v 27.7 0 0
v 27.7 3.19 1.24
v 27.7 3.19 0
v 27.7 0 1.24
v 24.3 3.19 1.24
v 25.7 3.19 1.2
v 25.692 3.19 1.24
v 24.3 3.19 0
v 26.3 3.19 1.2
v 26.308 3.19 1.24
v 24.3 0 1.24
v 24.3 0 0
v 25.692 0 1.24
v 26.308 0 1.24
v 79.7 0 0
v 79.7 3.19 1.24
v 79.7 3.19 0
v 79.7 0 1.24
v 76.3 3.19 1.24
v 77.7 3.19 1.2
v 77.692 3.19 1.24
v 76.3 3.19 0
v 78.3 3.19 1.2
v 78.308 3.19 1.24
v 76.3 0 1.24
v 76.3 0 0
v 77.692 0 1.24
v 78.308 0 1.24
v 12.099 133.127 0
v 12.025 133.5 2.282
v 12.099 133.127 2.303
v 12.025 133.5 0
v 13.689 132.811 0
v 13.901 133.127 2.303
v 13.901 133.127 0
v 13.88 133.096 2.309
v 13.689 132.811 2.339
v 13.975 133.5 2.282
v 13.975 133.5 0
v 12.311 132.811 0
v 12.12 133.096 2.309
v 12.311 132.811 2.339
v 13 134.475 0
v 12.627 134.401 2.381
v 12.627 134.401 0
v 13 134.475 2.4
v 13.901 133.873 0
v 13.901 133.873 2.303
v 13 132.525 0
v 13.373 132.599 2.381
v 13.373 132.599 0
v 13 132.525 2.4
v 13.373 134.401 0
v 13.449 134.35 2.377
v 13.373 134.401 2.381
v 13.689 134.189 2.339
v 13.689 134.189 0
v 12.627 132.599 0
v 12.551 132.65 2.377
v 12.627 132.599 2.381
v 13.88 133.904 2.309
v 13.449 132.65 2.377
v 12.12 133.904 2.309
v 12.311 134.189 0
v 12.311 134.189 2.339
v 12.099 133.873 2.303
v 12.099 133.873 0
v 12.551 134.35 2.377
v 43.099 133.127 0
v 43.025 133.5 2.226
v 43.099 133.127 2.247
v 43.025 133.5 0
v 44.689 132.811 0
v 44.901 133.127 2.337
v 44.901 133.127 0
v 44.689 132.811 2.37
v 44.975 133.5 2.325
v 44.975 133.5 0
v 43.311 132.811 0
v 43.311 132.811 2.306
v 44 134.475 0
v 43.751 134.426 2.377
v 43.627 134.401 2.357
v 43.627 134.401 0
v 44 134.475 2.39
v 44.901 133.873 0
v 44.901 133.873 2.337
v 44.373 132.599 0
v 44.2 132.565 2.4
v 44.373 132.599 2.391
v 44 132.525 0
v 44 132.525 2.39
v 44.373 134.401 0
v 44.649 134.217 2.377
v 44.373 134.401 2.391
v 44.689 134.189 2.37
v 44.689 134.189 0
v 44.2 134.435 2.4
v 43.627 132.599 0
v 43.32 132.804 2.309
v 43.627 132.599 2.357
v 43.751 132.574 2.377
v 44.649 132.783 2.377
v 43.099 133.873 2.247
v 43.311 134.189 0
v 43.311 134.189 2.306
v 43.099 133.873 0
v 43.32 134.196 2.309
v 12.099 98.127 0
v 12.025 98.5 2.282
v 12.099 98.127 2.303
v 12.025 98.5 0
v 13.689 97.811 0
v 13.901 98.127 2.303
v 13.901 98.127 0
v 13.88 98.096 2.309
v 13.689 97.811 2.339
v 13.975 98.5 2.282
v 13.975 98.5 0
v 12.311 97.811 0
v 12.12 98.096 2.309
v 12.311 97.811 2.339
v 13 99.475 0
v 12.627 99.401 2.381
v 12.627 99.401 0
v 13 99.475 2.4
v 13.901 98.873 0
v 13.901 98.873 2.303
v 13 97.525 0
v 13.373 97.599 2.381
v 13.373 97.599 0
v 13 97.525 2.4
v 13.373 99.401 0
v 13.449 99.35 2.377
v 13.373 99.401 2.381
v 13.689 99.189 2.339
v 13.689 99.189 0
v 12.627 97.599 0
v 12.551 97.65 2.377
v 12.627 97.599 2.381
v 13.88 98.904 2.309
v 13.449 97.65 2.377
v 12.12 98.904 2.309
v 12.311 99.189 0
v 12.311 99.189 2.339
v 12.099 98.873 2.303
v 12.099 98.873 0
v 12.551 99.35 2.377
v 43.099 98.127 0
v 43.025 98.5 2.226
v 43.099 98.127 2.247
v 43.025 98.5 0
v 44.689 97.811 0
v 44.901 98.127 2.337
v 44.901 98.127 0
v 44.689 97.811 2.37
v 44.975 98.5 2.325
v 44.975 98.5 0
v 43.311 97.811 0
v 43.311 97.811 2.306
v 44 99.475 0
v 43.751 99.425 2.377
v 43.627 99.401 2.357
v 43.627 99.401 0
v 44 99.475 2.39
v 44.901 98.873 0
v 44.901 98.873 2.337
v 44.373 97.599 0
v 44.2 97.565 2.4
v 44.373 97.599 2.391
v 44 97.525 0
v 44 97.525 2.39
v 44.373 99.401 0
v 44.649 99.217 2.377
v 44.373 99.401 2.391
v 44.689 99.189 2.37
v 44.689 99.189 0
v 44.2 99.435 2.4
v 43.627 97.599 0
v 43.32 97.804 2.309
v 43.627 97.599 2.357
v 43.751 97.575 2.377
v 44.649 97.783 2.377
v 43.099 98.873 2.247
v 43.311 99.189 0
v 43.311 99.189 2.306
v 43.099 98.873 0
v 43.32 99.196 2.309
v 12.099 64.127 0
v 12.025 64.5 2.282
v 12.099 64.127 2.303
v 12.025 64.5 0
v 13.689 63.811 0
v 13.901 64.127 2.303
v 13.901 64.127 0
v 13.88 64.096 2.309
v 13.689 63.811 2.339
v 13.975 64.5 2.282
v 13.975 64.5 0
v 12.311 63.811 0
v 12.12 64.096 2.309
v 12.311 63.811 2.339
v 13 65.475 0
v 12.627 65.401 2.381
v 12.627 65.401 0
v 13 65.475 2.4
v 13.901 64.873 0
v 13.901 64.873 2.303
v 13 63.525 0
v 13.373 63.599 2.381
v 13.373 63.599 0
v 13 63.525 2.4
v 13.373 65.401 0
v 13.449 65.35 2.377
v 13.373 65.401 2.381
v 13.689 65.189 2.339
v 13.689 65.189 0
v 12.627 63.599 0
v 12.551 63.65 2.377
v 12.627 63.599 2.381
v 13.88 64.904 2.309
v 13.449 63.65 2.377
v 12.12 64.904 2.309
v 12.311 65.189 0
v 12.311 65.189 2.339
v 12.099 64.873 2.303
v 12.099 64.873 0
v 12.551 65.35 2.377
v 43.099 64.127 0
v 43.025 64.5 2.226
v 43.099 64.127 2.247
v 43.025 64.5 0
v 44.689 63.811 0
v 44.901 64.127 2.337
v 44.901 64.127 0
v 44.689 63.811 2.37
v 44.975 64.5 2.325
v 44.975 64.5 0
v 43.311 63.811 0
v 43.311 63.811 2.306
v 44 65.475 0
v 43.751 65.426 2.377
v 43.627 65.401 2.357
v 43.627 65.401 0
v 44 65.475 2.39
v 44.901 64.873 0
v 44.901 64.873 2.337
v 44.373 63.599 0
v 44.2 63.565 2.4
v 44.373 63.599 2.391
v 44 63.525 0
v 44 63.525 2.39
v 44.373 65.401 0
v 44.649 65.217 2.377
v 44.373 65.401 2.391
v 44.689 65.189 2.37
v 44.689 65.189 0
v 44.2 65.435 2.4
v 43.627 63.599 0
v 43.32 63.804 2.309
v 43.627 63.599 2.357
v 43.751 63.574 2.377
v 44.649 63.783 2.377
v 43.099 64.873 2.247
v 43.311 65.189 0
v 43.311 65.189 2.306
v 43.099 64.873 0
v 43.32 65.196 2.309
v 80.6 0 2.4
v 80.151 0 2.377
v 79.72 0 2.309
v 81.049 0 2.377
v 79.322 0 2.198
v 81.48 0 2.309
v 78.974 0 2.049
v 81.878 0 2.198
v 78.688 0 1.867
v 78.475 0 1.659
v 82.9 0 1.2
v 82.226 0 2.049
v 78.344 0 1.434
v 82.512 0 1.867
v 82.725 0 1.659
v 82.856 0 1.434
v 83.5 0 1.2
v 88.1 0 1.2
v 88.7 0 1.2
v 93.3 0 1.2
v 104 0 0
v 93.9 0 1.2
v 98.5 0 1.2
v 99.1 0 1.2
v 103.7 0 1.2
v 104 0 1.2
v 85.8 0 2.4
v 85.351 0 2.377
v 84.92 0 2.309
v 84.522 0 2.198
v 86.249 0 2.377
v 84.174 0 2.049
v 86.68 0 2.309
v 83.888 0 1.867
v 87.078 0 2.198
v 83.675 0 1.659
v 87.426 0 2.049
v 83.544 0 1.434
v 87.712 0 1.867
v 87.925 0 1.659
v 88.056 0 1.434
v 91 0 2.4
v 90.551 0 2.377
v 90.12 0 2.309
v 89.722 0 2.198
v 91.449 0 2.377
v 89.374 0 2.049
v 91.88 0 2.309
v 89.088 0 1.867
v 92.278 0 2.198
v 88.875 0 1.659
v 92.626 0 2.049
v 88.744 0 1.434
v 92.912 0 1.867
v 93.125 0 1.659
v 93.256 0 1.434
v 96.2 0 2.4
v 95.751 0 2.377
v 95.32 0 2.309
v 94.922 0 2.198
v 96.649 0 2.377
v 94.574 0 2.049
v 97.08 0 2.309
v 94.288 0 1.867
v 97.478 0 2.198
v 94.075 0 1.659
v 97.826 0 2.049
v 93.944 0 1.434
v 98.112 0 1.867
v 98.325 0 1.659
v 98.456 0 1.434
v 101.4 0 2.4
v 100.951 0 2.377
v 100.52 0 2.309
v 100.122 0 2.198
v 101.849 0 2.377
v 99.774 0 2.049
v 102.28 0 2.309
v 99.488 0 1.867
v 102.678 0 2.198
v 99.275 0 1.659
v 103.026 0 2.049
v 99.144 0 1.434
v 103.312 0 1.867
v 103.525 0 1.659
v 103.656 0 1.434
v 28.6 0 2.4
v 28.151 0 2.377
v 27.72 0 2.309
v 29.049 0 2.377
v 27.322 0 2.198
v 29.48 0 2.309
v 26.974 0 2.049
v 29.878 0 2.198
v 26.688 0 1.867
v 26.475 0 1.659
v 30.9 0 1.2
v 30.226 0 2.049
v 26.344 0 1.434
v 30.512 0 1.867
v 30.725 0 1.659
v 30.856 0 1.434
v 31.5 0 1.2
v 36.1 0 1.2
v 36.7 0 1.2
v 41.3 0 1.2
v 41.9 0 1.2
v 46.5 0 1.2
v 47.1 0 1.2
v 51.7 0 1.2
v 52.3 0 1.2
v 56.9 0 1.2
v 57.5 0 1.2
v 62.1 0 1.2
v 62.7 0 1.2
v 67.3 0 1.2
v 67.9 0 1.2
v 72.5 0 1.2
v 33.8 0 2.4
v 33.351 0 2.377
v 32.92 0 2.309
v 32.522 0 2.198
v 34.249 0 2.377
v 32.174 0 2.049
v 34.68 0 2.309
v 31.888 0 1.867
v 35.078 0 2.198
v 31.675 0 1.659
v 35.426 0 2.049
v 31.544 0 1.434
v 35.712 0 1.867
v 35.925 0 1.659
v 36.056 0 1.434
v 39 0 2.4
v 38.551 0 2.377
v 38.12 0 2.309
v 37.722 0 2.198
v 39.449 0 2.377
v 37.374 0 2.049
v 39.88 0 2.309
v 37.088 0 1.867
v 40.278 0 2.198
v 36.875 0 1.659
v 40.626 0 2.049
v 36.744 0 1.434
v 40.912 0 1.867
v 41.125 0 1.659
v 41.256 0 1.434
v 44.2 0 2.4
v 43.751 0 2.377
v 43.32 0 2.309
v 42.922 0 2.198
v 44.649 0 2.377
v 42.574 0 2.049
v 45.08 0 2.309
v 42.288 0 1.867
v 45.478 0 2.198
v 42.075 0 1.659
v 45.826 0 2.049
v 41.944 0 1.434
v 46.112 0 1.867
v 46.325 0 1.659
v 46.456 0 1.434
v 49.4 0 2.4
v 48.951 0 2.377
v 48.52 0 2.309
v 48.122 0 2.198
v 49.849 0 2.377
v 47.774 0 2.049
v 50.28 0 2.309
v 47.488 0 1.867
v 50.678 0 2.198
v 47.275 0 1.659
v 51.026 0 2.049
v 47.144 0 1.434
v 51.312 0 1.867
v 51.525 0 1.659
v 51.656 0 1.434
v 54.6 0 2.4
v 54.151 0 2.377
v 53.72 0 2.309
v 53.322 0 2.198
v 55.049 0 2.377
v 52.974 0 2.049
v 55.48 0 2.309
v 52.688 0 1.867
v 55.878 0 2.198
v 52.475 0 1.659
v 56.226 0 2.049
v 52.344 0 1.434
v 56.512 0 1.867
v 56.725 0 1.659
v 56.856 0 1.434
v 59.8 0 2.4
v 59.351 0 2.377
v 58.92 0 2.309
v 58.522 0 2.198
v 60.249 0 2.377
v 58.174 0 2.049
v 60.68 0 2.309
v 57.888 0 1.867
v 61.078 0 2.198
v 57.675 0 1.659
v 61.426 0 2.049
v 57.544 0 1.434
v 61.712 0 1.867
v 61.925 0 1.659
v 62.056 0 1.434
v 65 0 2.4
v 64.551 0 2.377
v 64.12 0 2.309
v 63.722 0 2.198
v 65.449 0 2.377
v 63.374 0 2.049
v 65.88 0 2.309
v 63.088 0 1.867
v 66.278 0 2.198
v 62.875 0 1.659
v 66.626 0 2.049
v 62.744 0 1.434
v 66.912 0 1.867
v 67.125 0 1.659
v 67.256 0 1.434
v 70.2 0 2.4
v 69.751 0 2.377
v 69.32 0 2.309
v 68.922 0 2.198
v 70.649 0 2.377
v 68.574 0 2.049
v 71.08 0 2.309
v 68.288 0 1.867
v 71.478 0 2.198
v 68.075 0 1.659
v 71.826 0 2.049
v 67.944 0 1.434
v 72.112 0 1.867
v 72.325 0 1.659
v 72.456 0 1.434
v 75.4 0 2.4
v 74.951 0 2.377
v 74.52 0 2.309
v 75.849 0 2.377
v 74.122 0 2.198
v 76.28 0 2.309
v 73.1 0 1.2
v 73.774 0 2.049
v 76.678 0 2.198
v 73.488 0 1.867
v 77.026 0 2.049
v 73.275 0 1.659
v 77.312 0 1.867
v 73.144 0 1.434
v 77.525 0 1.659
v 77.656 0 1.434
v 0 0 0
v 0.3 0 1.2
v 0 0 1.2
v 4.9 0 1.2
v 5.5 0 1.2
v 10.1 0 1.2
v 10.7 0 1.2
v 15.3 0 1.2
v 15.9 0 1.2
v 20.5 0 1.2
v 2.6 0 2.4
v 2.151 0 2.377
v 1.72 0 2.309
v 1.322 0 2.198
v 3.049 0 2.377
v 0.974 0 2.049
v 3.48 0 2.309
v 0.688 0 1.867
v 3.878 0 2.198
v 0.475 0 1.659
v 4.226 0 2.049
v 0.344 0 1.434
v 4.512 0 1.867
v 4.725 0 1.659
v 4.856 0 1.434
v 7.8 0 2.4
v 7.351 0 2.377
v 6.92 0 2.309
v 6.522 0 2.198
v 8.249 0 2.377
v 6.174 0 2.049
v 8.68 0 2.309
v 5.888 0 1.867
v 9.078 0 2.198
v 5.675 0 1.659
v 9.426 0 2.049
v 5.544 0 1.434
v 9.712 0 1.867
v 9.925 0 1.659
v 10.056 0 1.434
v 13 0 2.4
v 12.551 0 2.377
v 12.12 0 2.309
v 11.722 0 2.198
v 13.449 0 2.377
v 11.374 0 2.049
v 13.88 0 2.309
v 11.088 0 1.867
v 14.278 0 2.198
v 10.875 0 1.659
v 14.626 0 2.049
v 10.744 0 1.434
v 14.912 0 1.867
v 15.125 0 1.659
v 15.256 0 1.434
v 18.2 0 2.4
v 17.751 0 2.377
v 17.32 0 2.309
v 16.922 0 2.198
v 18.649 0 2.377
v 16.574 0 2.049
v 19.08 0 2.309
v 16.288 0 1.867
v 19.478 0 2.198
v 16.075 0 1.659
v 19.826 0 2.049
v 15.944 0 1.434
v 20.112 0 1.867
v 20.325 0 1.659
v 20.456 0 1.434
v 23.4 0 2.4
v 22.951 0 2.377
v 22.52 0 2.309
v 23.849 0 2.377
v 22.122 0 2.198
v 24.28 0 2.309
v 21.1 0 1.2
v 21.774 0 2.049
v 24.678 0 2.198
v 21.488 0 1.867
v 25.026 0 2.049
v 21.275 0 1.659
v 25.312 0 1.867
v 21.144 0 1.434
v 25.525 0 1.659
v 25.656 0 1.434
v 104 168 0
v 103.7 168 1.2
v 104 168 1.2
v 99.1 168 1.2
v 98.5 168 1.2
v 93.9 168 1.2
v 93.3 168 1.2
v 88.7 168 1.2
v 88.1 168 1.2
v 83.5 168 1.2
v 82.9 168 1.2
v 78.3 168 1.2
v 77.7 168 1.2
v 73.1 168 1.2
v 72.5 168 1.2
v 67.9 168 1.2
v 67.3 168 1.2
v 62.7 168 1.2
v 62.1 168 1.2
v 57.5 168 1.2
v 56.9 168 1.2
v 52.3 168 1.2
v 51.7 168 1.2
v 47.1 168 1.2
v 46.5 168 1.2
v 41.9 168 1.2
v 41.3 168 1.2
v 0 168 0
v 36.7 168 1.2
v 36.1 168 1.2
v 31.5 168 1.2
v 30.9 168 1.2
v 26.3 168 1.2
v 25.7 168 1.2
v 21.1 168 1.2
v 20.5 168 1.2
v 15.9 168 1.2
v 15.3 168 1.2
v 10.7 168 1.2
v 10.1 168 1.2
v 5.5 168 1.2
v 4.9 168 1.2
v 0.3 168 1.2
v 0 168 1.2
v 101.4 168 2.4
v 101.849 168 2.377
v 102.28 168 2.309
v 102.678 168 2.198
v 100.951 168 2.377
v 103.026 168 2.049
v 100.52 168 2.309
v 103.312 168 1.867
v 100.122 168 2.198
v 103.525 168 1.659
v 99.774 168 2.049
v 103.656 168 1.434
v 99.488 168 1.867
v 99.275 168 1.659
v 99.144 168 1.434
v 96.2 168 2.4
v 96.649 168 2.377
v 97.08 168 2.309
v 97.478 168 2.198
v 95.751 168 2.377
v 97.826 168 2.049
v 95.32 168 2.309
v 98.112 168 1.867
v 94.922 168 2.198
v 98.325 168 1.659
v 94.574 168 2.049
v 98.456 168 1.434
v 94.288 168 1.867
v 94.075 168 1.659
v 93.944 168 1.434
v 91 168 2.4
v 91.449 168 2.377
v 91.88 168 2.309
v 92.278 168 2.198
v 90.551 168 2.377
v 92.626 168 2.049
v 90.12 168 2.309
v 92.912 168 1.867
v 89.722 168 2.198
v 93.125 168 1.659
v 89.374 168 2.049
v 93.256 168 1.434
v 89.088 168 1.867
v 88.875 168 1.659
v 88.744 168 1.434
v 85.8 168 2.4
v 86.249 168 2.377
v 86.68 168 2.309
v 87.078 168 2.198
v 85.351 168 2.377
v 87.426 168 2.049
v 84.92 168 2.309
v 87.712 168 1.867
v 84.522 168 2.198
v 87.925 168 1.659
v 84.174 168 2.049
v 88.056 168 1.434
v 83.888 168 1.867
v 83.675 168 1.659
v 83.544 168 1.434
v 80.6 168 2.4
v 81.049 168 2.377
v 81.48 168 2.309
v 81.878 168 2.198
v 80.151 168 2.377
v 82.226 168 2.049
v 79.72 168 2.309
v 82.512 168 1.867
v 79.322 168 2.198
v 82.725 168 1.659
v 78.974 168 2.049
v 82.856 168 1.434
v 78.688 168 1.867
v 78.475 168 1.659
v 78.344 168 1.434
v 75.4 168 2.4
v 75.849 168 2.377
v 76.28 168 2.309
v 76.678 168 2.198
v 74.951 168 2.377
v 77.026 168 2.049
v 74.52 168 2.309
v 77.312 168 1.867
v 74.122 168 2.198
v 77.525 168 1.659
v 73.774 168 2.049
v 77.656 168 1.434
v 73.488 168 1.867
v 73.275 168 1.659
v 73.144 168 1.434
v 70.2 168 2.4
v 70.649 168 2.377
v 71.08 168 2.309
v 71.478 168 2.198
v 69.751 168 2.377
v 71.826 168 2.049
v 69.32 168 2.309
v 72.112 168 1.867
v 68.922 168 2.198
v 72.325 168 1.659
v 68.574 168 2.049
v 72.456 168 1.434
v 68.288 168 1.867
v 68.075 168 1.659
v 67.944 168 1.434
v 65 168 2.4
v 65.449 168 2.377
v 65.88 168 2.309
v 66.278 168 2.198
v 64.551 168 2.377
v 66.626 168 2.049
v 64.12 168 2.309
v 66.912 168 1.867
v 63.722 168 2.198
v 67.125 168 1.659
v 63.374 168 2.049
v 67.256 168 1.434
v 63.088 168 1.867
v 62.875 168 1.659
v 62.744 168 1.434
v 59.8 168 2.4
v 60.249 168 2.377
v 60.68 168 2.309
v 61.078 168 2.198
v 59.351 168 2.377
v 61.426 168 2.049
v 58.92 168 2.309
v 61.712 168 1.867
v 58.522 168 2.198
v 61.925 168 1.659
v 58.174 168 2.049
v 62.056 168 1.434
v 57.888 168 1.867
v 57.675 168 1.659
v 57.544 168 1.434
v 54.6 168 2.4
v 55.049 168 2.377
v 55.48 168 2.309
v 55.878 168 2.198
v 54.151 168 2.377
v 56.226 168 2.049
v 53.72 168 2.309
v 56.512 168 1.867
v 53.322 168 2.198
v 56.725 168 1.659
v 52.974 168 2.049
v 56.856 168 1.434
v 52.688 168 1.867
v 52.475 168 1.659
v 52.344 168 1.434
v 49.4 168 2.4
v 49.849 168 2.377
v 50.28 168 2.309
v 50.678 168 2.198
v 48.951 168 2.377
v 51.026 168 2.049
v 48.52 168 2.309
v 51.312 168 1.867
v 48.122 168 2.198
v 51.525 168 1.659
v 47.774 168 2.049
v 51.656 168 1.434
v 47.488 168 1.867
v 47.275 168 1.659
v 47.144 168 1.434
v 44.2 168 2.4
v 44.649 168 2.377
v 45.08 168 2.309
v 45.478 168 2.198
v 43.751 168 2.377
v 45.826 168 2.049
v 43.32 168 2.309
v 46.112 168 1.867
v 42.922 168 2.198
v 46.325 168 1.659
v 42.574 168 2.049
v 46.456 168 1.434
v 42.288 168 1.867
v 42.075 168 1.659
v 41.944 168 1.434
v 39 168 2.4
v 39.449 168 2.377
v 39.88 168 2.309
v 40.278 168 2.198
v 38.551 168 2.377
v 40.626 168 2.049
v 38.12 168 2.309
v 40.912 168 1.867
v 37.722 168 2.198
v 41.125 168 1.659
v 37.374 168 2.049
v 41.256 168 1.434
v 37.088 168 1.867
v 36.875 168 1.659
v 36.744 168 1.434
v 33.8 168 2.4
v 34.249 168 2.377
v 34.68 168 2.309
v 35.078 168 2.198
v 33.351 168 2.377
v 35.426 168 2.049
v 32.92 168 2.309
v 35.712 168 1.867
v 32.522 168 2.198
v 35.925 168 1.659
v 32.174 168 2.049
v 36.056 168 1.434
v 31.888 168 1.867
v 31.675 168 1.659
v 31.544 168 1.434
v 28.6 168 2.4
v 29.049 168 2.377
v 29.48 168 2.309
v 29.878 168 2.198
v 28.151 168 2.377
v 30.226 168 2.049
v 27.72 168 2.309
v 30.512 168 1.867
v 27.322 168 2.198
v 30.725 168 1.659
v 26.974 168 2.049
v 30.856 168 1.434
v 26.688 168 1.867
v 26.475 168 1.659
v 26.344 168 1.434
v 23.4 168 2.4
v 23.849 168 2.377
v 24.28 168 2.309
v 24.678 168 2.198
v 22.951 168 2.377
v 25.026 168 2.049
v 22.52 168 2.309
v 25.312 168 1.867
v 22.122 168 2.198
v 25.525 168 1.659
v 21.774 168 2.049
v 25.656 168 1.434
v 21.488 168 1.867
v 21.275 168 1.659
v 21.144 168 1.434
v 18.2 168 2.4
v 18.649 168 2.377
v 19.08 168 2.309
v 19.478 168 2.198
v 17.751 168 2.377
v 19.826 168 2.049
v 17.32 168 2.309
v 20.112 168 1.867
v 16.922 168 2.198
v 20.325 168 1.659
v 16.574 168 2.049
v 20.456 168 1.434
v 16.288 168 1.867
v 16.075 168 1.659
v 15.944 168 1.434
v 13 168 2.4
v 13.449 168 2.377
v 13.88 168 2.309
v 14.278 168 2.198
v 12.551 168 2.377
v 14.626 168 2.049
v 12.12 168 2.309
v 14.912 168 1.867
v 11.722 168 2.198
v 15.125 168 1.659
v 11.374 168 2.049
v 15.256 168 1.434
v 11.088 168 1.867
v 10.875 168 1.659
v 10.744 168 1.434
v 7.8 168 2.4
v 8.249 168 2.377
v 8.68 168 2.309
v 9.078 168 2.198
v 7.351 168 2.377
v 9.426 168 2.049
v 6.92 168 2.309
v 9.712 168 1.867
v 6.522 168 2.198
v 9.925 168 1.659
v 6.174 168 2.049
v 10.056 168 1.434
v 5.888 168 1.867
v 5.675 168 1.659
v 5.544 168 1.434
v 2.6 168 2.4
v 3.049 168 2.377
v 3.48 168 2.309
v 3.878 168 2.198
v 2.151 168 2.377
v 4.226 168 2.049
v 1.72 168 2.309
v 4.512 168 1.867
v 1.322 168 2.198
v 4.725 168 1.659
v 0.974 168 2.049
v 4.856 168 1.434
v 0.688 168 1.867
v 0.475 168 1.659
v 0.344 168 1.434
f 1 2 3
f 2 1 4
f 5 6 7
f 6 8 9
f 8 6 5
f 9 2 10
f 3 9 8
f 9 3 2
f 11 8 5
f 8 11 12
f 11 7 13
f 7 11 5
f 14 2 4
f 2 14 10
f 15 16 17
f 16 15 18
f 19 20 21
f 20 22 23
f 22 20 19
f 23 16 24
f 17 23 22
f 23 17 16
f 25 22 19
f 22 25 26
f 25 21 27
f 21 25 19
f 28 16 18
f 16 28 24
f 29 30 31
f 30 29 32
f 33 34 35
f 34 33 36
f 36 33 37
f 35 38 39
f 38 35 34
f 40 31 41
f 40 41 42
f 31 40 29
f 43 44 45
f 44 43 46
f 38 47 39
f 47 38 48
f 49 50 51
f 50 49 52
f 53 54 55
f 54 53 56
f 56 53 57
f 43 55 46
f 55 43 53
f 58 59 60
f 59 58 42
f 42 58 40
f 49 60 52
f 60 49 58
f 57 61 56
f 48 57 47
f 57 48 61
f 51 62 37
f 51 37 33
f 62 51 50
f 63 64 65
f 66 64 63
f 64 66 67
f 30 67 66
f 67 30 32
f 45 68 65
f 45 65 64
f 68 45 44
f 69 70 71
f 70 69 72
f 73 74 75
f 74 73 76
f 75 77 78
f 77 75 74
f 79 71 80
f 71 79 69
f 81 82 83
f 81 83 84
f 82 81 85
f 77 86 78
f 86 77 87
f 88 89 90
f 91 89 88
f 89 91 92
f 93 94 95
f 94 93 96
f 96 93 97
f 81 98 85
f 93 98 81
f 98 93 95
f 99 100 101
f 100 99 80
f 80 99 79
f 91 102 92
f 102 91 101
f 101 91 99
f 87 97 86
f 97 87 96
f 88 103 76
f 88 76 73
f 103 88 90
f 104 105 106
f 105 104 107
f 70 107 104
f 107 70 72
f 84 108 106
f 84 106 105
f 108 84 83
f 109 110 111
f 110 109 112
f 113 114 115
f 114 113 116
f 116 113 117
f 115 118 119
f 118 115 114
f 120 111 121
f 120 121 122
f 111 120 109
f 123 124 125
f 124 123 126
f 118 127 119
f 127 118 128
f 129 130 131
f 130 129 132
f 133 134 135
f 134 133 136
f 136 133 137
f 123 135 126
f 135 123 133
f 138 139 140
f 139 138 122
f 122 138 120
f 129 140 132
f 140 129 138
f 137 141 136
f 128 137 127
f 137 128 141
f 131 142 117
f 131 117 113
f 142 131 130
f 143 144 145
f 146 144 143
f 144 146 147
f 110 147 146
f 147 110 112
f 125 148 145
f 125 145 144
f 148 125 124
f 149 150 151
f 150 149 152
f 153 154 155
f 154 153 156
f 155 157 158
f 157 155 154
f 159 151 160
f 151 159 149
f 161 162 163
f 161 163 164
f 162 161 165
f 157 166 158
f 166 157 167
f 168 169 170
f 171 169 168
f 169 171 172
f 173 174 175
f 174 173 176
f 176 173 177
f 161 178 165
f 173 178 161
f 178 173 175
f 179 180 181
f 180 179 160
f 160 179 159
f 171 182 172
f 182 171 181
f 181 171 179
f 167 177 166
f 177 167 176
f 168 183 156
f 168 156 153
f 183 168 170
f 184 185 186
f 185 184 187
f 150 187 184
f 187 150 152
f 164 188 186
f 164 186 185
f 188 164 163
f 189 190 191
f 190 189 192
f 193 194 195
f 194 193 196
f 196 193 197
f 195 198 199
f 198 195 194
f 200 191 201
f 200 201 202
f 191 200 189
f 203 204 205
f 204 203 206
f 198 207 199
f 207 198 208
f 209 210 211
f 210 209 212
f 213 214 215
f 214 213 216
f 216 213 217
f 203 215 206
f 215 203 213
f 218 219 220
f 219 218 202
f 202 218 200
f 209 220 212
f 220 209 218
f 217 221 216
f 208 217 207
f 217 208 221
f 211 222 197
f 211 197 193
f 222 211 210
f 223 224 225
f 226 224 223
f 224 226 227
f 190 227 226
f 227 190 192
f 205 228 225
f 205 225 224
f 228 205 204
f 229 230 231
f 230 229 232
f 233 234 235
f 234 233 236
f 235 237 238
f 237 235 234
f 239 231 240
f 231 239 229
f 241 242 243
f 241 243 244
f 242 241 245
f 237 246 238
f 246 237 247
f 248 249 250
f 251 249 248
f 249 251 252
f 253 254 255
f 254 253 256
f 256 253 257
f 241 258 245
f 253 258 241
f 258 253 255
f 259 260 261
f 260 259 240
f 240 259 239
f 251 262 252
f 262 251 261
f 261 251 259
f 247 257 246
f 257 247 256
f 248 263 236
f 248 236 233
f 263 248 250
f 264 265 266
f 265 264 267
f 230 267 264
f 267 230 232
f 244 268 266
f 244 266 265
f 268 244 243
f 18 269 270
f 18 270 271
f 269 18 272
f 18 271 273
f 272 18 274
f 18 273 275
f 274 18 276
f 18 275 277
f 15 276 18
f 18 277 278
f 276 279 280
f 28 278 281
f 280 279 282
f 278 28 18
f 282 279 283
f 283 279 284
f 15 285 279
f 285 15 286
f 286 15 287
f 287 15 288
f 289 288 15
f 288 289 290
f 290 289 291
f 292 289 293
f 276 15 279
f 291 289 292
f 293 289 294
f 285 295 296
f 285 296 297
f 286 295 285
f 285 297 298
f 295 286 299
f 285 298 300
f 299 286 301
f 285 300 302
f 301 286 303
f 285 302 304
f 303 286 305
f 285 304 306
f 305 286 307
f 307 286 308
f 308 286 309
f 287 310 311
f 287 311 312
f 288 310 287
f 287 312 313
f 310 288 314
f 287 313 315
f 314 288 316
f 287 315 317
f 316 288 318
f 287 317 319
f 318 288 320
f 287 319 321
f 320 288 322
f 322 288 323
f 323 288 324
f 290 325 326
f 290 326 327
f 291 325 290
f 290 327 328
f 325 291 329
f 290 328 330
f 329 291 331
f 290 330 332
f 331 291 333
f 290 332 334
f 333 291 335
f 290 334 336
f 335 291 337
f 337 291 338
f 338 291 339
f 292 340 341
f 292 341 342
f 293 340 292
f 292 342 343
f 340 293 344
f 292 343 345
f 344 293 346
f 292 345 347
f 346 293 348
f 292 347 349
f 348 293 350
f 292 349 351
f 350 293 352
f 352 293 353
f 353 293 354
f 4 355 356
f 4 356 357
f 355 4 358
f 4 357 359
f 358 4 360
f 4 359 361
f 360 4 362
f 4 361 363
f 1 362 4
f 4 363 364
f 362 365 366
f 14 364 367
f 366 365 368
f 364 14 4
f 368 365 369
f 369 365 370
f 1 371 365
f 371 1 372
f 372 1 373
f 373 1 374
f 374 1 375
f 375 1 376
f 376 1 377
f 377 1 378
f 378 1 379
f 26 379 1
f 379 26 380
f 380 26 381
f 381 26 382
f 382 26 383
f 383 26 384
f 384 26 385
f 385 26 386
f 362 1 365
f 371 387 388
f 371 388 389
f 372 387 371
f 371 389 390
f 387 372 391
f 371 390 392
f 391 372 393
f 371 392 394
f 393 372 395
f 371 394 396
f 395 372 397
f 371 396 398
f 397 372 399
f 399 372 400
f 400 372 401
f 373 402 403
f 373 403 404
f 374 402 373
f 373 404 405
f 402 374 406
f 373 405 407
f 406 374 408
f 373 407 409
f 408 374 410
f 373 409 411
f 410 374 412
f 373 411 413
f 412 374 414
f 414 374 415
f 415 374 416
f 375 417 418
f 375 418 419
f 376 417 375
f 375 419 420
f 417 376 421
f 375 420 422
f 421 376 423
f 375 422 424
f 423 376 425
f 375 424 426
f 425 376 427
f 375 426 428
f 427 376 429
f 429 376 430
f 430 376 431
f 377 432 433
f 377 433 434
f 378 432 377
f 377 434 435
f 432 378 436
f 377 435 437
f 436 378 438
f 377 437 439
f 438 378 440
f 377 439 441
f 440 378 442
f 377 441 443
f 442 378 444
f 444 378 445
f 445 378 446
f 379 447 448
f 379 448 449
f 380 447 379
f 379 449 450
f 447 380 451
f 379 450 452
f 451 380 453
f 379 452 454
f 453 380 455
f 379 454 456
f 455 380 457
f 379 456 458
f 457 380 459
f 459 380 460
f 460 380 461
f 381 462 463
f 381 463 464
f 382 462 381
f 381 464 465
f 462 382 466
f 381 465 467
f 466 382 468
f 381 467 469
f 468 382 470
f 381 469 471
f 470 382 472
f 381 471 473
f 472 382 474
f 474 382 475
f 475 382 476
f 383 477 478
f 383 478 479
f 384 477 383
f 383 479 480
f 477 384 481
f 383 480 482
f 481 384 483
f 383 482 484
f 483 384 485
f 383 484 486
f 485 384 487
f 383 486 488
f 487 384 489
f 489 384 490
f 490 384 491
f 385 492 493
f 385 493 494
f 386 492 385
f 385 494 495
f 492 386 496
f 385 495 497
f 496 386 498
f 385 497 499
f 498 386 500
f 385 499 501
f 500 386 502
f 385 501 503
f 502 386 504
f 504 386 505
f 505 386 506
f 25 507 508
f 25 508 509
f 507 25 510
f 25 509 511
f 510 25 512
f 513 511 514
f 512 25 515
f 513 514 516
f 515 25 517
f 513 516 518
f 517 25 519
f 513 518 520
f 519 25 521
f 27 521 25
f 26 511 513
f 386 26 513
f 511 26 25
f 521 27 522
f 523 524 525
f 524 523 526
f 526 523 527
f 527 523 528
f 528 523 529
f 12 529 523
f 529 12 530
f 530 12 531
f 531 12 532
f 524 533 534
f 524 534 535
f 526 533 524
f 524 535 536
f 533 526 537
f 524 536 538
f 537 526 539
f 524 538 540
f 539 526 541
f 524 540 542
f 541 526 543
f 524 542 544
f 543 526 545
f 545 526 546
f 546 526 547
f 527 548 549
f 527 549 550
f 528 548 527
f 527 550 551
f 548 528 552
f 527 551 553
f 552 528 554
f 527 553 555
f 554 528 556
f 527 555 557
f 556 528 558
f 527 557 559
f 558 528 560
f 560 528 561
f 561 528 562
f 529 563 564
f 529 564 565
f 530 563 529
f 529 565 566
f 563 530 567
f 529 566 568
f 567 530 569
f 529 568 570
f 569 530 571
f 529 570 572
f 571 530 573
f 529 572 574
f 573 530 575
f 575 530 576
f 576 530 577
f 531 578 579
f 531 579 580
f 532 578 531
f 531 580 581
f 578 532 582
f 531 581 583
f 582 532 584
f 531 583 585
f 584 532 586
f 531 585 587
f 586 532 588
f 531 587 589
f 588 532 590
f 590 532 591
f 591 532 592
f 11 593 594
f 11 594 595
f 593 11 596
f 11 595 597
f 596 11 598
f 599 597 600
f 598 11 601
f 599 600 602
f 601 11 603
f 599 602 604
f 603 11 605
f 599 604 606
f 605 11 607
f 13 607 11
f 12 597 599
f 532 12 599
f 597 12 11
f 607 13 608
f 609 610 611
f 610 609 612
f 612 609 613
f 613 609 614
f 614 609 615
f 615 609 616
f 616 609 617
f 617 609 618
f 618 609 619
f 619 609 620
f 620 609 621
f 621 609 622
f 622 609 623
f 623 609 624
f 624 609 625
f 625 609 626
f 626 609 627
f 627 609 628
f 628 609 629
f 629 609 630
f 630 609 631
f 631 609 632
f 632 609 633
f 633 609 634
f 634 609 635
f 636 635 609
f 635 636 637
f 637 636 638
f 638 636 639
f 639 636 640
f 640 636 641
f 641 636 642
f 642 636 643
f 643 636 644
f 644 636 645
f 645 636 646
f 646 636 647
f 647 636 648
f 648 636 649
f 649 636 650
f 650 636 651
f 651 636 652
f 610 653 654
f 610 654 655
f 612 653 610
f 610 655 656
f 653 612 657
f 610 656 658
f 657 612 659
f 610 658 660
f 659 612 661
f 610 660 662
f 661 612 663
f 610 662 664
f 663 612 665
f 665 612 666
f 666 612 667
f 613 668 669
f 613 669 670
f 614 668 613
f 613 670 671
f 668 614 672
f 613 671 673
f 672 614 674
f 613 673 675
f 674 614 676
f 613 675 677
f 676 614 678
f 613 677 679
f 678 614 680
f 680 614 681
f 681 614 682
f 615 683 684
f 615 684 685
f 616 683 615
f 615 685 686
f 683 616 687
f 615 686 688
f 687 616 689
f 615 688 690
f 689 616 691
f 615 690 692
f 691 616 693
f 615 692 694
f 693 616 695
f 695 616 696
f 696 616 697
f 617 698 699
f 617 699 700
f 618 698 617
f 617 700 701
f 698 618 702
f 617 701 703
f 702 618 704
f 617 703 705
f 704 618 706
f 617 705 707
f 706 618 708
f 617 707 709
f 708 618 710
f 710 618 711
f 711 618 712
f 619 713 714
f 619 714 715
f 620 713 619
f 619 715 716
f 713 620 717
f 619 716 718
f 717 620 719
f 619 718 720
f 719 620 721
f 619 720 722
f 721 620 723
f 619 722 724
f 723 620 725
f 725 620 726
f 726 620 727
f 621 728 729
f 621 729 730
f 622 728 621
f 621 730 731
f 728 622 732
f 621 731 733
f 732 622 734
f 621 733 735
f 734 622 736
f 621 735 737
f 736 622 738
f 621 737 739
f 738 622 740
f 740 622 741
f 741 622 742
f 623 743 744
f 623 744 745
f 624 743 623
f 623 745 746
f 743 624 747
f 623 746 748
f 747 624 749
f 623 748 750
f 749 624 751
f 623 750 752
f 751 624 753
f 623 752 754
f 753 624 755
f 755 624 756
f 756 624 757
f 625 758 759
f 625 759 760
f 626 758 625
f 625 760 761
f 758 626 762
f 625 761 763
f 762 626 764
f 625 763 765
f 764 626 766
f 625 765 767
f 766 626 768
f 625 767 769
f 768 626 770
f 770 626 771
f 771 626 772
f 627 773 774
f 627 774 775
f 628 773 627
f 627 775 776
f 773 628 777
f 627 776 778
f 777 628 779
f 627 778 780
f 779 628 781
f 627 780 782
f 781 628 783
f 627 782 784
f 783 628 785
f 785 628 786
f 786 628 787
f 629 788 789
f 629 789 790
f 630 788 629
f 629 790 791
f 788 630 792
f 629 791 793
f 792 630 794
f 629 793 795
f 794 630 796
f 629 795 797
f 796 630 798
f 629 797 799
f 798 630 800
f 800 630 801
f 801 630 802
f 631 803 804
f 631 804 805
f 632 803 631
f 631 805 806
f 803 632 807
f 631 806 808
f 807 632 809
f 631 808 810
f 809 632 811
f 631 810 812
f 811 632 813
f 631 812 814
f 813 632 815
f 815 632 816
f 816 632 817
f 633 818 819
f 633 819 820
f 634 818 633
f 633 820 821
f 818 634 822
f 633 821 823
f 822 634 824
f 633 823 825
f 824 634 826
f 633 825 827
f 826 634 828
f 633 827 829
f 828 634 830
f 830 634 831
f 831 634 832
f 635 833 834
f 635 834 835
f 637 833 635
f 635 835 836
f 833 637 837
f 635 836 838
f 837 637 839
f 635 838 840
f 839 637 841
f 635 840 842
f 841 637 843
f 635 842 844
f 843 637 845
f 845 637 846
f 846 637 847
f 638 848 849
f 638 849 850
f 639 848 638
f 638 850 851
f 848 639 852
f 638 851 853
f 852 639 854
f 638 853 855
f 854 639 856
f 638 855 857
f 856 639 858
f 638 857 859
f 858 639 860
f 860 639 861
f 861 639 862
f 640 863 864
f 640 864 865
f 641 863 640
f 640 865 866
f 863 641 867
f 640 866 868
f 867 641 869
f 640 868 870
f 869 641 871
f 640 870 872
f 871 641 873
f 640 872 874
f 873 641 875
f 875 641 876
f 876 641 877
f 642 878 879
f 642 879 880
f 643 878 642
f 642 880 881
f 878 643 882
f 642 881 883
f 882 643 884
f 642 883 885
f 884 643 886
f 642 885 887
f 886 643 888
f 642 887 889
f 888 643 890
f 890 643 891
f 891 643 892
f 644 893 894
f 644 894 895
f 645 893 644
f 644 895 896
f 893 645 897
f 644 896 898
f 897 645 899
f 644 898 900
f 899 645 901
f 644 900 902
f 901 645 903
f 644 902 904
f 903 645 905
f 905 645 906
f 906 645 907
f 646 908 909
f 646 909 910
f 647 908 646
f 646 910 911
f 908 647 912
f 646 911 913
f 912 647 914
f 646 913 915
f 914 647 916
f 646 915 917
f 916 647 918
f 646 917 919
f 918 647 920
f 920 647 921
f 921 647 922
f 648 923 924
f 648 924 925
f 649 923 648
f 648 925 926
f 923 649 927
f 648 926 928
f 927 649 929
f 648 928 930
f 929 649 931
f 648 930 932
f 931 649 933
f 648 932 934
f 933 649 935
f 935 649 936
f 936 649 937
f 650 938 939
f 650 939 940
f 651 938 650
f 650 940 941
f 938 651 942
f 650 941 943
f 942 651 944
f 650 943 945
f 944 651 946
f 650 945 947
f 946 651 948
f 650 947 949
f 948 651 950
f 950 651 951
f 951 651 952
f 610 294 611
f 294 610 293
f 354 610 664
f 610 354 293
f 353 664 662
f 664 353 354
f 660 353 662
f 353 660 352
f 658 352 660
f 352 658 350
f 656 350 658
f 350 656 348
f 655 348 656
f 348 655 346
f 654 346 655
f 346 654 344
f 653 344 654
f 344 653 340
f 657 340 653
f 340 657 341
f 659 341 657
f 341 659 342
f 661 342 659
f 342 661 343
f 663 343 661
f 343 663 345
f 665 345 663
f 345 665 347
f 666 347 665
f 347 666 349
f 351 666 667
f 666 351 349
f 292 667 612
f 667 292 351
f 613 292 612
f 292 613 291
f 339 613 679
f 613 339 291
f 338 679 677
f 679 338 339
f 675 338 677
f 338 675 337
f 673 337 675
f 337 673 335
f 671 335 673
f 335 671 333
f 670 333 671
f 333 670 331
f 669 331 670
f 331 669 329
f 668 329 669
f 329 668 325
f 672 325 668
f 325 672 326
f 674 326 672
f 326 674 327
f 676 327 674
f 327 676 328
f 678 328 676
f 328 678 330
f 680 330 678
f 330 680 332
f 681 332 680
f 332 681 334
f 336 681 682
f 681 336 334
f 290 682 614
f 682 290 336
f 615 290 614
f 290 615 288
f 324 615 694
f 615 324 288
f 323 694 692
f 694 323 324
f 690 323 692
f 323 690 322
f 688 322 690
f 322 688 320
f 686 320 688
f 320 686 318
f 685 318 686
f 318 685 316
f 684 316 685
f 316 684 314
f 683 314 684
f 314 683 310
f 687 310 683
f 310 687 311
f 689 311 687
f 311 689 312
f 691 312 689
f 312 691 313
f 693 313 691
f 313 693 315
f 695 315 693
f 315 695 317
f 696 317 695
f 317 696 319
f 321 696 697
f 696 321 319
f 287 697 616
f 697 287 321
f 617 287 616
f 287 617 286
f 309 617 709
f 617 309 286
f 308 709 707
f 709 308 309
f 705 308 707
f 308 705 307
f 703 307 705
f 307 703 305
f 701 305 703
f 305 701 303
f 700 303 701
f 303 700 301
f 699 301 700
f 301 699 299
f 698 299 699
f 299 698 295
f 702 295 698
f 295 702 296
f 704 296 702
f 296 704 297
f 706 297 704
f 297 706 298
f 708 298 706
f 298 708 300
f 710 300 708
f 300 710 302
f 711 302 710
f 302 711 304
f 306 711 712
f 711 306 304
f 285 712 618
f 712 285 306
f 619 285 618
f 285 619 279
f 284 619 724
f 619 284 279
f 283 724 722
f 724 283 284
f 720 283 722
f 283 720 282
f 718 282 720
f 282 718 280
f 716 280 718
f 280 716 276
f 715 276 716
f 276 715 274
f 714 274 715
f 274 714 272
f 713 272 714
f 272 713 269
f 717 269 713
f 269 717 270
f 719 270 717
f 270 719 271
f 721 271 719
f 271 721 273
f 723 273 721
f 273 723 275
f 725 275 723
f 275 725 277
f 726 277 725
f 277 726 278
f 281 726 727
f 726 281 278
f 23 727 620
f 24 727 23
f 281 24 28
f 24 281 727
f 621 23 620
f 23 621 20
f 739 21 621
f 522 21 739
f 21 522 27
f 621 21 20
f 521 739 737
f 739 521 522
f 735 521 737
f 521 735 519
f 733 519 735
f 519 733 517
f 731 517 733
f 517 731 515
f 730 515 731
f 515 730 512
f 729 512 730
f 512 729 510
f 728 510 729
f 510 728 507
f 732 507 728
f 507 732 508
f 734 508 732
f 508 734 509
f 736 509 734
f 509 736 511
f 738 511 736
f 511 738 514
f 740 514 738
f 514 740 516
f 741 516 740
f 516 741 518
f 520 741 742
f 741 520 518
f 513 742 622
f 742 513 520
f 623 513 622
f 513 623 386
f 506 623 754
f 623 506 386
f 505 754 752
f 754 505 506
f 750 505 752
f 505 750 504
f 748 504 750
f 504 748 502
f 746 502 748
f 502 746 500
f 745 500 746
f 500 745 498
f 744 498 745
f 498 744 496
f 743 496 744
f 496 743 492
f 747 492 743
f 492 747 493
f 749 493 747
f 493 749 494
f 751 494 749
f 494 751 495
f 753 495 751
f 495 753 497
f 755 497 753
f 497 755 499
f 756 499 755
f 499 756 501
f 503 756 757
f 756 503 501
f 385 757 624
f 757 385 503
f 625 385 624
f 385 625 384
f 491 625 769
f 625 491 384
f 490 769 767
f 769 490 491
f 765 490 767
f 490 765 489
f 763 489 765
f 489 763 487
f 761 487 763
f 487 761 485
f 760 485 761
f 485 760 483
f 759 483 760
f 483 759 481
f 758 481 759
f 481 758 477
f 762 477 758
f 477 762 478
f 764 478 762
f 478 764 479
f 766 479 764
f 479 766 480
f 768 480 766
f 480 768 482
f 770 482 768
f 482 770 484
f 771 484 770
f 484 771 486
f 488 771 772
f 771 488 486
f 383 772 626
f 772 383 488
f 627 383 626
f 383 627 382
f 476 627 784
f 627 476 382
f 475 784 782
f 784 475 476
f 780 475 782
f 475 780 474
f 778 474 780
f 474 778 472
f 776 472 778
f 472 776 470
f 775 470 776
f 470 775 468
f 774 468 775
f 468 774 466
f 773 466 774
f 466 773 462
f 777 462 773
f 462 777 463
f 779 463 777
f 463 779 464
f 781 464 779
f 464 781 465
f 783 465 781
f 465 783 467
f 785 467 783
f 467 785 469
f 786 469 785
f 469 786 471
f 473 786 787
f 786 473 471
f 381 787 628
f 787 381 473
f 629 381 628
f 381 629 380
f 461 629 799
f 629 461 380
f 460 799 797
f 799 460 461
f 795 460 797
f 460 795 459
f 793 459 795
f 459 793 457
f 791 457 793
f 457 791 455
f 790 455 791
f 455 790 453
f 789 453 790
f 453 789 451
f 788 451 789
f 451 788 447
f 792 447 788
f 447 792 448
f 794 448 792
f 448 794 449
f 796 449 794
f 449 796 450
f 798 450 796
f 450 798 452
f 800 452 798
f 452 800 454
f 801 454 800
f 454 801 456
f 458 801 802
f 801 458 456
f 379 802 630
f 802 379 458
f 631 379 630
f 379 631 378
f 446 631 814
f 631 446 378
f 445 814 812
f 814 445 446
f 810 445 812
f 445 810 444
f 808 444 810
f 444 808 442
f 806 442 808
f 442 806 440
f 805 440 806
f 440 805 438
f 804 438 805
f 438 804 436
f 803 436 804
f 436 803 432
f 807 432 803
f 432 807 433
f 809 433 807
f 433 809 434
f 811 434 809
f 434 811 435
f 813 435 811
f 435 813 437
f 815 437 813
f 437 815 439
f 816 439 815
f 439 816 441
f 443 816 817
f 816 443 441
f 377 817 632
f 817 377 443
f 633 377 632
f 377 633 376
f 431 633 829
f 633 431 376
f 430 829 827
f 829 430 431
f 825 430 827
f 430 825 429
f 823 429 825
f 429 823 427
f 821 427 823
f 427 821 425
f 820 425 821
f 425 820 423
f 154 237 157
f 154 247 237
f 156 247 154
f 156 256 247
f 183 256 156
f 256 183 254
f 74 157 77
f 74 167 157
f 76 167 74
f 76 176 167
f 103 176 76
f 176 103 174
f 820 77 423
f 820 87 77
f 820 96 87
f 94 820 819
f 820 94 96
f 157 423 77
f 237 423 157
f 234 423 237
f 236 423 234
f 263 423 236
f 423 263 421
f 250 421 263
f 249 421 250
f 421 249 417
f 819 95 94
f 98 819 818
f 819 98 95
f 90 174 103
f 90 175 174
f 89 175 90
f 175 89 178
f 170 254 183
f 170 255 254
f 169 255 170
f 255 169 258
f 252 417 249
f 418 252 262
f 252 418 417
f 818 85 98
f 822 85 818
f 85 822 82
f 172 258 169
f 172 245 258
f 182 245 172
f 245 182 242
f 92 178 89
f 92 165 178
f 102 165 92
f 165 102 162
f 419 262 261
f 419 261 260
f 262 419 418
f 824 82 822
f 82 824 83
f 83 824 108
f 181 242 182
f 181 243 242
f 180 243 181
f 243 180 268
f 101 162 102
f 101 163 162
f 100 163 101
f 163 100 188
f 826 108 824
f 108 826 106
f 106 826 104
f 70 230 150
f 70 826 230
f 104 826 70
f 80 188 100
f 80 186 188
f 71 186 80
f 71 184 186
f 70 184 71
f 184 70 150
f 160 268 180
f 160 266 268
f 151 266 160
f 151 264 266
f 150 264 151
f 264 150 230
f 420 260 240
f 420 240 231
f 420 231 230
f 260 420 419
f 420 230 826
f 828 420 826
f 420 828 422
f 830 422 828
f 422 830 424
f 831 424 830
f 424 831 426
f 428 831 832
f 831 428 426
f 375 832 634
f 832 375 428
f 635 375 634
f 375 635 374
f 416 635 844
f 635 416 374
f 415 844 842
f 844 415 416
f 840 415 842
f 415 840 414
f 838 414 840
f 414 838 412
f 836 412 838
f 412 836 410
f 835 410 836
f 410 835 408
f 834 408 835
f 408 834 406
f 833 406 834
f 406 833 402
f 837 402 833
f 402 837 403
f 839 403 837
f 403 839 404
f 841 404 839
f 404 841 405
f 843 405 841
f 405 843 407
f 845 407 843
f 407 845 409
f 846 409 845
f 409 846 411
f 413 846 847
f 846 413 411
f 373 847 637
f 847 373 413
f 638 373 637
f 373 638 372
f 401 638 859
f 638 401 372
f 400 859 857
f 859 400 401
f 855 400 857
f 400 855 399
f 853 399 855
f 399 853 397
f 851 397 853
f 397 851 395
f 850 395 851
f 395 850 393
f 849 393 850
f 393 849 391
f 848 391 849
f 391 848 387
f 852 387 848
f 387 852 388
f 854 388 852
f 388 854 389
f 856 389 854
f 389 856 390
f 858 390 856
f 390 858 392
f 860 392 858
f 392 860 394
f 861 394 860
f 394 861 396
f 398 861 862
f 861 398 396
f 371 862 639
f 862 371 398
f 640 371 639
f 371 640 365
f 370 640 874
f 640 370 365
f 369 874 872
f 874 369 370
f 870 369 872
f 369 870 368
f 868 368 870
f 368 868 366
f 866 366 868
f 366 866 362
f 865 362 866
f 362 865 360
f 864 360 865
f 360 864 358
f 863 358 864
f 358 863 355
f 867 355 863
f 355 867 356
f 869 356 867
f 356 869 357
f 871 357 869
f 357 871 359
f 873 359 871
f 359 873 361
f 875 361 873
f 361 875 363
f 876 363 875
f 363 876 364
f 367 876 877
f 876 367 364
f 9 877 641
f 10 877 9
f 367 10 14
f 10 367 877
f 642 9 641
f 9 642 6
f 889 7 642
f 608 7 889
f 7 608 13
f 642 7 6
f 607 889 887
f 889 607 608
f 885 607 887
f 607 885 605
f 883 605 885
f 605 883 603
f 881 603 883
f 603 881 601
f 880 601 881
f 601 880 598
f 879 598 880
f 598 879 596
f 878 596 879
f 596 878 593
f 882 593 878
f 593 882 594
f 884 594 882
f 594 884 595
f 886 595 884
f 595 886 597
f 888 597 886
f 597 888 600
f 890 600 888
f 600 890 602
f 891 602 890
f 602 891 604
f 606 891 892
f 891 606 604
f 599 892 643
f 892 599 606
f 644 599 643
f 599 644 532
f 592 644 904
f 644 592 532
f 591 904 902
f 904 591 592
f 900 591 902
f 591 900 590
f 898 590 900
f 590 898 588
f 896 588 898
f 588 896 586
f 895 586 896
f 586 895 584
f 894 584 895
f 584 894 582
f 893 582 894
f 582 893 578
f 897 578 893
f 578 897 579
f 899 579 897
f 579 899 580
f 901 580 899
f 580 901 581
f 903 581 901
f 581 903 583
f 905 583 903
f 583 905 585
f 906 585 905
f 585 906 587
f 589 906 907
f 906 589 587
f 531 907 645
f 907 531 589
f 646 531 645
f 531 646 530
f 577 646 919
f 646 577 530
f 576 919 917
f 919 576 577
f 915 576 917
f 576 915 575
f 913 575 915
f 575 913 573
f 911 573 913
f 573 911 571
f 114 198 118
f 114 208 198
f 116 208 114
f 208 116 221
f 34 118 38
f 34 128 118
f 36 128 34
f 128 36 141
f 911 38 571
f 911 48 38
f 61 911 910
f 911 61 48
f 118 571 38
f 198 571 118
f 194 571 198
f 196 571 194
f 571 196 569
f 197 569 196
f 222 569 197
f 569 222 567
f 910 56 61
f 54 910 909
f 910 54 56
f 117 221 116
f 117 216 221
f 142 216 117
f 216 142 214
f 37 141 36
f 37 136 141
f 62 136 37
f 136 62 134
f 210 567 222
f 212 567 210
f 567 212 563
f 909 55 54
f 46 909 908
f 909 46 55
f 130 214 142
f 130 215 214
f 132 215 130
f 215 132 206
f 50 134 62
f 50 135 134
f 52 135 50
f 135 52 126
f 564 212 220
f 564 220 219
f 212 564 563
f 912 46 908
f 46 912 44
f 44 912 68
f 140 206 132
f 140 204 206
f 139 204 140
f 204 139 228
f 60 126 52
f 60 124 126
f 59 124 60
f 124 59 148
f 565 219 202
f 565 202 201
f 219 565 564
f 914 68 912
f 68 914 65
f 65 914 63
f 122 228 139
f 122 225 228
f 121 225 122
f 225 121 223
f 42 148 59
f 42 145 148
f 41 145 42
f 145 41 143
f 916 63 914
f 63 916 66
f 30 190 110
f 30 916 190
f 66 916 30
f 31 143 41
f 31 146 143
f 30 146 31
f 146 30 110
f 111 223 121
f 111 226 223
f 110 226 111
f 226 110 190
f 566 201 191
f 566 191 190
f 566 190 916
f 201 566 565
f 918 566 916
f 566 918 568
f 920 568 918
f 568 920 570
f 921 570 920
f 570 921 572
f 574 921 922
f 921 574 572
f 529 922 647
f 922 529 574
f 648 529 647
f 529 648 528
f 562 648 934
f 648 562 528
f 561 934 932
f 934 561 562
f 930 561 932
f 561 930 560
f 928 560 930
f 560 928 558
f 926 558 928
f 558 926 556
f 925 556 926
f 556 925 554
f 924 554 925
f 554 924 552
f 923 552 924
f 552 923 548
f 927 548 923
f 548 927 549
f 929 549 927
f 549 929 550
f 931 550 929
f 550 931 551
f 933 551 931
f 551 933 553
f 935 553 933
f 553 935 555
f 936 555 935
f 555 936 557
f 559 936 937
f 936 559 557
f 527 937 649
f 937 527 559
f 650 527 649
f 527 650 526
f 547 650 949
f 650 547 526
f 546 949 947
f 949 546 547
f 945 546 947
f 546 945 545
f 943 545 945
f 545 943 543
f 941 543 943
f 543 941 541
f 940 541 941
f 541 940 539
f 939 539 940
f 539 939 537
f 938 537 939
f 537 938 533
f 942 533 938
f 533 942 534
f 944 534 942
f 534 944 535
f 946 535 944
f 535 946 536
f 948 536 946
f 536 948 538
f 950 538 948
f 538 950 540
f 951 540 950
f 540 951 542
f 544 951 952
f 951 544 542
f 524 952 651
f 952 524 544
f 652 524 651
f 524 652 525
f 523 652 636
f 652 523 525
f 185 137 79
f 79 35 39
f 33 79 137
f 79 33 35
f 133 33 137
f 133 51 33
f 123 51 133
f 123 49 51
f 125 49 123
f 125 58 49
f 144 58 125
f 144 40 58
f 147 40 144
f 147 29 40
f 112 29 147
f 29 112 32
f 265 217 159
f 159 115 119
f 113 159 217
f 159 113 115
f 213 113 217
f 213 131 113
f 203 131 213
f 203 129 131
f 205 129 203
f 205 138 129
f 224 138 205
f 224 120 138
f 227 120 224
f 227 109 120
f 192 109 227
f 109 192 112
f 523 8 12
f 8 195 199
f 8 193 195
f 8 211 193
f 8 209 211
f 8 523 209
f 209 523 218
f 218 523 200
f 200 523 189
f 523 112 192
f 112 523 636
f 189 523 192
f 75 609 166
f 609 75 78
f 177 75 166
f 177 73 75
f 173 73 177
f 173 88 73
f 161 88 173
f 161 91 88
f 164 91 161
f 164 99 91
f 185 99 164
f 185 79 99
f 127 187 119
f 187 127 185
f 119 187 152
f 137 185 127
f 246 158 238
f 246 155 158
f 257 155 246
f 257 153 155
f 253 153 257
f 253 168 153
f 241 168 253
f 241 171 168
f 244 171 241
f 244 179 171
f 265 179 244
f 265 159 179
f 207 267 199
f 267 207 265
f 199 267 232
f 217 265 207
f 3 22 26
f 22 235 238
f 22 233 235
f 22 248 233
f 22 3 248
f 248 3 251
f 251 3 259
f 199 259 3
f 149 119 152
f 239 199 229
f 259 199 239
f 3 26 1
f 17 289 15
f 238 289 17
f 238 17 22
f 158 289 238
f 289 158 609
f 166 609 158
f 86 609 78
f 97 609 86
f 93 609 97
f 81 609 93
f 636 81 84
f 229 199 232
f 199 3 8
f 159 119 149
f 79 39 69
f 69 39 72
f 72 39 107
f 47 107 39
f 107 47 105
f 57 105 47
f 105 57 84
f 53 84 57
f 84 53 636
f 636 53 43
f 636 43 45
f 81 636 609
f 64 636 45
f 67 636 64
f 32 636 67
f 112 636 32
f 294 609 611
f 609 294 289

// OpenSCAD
// Left_Wall_Panel_Upper.stl  -  Store Versile room frame (Rev C)
// Quantity: 1   Filament: Peach-beige (e.g. Bambu PLA Matte Desert Tan / Latte Brown, or PLA Sparkle for shimmer)
// Print: layer 0.16 mm, infill 15%, 2 walls, brim 0 mm, NO supports
// Orientation: back  (lying on its back, front face up)
// Notes: Flutes up. 6 shelf-pin holes.
// The library draws parts with their front toward +Y; mirror([0,1,0]) makes the real
// part face the viewer correctly (see build.py). Edit dimensions in versile_parts.scad.
use <../versile_parts.scad>

rotate([-90, 0, 0]) mirror([0, 1, 0]) wall_panel_upper(104, pins=[[13, 133.5], [44, 133.5], [13, 98.5], [44, 98.5], [13, 64.5], [44, 64.5]]);
